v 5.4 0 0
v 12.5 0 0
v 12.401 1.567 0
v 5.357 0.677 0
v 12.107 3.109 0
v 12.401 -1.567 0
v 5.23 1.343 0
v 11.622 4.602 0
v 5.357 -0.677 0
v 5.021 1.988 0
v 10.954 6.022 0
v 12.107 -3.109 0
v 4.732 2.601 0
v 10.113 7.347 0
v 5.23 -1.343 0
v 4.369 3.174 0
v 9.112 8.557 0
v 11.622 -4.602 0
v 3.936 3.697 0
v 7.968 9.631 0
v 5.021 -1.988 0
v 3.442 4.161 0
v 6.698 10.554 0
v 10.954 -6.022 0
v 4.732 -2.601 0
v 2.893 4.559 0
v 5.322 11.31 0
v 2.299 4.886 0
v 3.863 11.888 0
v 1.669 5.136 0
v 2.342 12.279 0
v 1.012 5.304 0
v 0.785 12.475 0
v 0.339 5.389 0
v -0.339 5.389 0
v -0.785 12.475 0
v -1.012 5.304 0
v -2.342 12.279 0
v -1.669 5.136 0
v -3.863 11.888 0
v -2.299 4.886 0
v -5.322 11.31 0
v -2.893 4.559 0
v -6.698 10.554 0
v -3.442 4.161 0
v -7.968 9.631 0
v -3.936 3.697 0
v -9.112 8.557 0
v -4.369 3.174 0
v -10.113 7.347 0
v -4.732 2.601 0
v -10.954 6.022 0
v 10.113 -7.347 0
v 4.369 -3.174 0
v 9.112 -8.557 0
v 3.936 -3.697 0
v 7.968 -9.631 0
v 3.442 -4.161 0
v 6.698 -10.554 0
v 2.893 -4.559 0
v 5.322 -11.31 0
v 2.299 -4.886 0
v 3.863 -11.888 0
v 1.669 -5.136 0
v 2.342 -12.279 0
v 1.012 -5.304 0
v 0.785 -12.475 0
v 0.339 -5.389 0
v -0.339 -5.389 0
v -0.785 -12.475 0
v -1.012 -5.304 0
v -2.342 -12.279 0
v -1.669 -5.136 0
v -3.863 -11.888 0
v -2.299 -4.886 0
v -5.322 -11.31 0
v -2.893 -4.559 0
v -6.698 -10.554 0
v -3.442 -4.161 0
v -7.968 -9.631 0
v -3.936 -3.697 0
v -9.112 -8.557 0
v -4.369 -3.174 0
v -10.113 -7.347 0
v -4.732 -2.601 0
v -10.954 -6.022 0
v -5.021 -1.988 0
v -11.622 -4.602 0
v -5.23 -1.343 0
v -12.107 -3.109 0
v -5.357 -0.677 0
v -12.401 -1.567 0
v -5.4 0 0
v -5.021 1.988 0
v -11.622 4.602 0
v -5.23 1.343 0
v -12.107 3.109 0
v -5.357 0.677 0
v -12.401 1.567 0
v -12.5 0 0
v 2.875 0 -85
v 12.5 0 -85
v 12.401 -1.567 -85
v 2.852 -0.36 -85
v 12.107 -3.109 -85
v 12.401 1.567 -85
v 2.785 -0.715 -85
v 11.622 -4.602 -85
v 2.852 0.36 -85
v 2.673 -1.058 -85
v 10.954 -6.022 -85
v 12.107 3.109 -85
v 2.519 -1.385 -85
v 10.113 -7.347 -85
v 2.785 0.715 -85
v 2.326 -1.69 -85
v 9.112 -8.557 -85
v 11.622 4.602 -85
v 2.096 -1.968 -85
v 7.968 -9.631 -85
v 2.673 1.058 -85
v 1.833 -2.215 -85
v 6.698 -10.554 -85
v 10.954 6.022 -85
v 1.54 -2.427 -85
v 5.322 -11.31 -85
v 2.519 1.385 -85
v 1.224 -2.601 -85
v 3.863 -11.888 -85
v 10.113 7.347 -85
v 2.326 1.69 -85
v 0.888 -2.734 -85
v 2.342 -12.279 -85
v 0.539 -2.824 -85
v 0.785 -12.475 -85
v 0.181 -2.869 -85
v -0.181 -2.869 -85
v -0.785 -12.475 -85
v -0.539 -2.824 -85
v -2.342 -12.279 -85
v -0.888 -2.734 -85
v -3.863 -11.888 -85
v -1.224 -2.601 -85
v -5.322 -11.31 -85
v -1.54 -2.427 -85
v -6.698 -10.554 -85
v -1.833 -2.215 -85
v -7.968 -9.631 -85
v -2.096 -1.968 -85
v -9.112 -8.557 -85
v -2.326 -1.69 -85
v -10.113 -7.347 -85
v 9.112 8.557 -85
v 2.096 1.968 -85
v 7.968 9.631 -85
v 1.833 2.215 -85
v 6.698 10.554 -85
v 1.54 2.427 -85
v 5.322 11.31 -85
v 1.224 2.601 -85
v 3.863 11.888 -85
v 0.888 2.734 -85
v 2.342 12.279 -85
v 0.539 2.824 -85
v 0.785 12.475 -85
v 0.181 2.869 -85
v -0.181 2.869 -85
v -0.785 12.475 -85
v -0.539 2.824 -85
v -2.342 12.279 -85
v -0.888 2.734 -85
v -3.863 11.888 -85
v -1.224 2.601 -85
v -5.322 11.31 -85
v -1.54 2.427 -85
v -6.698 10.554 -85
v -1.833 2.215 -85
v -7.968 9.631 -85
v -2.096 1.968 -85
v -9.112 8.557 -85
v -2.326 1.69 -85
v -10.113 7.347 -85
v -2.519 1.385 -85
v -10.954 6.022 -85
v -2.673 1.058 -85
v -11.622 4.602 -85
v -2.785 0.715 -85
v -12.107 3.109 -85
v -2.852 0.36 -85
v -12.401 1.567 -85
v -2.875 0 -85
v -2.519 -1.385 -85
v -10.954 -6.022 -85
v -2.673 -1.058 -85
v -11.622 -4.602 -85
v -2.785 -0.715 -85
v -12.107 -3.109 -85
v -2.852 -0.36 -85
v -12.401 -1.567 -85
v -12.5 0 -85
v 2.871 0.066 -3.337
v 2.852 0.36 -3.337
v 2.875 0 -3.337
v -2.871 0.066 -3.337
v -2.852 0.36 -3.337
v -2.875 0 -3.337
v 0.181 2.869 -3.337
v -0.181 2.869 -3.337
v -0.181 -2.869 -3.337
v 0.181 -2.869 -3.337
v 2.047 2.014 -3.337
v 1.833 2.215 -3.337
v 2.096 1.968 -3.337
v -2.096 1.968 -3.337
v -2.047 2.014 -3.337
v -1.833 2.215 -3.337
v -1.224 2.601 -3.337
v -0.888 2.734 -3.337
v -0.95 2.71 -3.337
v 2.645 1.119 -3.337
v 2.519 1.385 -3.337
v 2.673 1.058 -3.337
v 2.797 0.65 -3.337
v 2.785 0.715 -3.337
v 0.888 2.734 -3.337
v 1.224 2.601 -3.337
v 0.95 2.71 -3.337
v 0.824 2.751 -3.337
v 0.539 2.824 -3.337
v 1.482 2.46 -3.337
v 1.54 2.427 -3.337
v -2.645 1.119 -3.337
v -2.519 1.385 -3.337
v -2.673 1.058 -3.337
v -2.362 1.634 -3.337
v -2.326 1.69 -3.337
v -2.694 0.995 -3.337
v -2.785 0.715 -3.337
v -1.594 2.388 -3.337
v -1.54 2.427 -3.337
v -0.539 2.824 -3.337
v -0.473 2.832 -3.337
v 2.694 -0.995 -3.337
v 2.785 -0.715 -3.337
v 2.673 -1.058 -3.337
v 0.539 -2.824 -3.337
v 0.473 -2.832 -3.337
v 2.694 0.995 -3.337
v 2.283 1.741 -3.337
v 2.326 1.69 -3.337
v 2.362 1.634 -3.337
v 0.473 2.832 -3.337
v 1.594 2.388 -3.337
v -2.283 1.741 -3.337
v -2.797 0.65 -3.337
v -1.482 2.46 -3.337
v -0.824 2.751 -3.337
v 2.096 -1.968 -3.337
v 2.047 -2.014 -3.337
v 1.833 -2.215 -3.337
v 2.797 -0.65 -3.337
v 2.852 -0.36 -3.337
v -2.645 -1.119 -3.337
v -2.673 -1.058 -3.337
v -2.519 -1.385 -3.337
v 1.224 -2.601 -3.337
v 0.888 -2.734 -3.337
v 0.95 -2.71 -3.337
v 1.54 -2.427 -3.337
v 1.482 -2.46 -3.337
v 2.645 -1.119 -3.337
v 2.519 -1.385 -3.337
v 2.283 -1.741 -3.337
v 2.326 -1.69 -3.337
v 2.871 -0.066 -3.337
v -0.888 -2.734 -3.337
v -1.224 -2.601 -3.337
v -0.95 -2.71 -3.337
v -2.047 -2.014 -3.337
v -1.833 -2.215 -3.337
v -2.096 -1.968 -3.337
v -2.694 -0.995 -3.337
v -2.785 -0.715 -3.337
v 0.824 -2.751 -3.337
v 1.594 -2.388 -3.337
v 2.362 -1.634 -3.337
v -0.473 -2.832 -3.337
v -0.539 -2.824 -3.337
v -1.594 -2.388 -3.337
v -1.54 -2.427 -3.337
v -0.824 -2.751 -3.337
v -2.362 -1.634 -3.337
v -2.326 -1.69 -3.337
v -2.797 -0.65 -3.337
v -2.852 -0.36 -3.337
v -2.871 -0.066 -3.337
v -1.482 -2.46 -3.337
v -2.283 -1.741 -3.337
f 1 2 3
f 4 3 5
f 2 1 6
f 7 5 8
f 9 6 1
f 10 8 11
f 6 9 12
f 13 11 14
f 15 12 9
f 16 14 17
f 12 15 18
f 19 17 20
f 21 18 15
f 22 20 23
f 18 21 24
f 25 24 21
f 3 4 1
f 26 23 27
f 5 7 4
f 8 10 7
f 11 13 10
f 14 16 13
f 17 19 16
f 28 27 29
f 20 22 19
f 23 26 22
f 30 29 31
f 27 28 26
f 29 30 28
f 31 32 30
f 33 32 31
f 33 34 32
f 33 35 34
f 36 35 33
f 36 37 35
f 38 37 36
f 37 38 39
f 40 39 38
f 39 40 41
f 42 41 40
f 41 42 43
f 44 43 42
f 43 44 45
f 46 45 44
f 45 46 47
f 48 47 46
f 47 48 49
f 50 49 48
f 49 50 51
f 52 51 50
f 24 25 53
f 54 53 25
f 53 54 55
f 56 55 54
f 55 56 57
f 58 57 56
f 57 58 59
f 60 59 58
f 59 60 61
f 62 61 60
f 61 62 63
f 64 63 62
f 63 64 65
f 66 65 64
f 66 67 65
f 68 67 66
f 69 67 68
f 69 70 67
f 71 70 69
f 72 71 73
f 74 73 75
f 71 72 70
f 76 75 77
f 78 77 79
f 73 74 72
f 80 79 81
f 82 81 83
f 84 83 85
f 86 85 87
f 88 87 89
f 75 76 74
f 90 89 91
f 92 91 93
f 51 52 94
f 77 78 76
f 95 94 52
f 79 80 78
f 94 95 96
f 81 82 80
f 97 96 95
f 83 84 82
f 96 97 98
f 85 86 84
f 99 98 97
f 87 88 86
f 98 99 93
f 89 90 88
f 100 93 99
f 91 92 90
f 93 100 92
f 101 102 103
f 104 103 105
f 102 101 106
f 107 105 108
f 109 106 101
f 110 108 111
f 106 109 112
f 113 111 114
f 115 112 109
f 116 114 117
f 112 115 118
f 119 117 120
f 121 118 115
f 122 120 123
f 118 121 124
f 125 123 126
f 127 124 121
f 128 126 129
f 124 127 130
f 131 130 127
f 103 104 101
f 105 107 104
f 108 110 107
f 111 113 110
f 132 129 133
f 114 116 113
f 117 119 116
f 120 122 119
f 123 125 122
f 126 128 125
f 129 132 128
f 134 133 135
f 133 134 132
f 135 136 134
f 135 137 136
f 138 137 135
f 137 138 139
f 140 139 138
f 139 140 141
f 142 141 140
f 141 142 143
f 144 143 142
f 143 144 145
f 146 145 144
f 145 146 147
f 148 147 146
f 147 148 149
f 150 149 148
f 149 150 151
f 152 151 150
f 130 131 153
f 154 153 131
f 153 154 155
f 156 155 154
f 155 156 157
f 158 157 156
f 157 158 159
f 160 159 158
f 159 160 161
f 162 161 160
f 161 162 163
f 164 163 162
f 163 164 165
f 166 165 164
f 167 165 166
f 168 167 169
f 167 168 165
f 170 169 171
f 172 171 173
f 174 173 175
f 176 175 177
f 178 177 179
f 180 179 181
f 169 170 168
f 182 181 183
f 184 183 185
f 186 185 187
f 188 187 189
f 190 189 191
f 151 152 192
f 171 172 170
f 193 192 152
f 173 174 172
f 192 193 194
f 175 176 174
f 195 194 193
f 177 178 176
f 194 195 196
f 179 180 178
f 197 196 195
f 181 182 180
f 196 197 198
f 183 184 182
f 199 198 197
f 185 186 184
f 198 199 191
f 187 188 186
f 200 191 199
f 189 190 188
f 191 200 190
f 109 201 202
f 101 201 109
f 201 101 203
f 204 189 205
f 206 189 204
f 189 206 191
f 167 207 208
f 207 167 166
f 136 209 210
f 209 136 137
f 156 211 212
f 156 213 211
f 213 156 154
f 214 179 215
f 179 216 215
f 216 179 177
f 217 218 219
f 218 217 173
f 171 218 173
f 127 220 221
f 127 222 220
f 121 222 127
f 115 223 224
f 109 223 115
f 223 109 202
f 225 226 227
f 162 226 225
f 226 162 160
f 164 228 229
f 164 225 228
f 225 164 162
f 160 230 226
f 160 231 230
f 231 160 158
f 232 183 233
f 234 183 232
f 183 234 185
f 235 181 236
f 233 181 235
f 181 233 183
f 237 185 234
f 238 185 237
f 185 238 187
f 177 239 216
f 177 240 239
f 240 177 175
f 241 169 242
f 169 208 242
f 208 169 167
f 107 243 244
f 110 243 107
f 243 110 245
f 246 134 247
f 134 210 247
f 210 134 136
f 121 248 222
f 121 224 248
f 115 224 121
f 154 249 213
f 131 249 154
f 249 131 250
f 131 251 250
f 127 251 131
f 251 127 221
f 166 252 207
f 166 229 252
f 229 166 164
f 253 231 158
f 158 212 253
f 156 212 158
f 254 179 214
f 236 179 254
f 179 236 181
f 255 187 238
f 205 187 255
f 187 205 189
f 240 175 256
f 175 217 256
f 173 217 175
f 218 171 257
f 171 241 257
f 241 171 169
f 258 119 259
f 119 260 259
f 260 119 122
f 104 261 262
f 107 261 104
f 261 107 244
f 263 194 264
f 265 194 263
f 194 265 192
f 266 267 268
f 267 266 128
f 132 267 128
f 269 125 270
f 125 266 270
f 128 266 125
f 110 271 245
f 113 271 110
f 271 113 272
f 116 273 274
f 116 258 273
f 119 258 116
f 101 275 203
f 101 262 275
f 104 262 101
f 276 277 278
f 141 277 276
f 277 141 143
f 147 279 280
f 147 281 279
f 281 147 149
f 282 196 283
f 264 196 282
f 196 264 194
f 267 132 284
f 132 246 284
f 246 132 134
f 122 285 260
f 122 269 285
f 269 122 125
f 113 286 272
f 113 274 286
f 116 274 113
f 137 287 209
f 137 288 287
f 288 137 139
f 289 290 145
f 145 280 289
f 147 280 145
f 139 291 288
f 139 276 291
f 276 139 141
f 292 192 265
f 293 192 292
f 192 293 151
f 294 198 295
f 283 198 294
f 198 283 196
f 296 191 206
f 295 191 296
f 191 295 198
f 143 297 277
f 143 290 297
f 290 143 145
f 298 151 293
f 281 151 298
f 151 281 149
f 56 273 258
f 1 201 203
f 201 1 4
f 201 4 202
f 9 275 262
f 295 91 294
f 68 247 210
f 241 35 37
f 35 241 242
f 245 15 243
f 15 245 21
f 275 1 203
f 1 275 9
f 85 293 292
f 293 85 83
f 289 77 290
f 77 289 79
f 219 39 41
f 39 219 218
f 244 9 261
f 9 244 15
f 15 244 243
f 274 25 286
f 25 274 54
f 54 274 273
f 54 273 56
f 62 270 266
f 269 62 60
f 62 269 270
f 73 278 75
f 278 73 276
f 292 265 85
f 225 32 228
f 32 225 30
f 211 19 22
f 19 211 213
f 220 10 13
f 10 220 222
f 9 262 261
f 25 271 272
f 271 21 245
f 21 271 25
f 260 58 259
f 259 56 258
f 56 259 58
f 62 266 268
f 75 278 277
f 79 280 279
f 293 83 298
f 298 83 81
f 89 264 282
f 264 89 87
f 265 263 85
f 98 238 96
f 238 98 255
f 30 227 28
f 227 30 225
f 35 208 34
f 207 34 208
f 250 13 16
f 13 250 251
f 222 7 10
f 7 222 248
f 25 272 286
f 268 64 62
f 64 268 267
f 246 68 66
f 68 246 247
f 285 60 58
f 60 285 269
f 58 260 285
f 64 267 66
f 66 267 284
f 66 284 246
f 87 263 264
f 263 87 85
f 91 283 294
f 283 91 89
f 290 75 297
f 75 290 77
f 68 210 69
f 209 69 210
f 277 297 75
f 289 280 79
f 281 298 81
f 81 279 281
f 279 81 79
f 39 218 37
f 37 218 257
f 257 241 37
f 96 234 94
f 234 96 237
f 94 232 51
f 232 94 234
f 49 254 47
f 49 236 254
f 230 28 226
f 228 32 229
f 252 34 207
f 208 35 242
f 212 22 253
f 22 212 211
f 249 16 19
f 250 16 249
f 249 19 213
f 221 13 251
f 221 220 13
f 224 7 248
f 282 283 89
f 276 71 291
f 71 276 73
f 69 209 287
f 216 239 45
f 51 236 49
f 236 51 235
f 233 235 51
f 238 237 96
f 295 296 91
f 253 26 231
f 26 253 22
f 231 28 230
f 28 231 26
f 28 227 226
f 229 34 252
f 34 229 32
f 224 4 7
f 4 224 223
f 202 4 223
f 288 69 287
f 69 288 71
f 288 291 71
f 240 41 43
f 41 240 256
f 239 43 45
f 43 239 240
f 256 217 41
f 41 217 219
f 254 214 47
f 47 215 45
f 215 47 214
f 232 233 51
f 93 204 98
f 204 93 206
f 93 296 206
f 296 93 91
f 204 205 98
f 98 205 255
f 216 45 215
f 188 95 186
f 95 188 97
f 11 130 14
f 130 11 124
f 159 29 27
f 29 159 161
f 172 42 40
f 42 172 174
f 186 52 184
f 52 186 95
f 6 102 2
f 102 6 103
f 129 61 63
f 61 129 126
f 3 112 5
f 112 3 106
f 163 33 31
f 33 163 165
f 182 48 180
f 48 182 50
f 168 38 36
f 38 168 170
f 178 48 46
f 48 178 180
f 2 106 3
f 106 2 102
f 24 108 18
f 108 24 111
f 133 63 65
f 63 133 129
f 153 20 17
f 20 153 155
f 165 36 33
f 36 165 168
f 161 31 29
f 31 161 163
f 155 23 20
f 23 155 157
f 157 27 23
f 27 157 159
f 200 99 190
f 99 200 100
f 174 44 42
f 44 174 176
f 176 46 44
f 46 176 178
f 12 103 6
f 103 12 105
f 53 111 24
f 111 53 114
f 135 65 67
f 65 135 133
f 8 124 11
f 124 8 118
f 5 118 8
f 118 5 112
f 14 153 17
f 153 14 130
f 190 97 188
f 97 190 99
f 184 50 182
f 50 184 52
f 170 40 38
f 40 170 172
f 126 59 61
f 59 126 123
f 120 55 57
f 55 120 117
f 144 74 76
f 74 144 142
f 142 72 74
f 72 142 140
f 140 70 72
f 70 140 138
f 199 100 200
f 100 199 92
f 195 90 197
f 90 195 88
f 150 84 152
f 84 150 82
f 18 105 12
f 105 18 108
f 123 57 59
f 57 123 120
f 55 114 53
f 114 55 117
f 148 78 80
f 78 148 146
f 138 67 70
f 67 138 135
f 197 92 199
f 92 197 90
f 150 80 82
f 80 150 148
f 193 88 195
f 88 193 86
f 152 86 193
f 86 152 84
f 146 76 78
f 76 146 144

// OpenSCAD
$fn = 50;


difference() {
	union() {
		translate(v = [0, 0, -85.0000000000]) {
			cylinder(h = 85, r = 12.5000000000);
		}
	}
	union() {
		translate(v = [0, 0, 0]) {
			rotate(a = [0, 0, 0]) {
				difference() {
					union() {
						translate(v = [0, 0, -85.0000000000]) {
							cylinder(h = 85, r = 2.6000000000);
						}
						translate(v = [0, 0, -85.0000000000]) {
							cylinder(h = 85, r = 2.8750000000);
						}
						translate(v = [0, 0, -3.7000000000]) {
							cylinder(h = 3.7000000000, r = 12.5000000000, r1 = 2.6000000000, r2 = 5.4000000000);
						}
						translate(v = [0, 0, -85.0000000000]) {
							cylinder(h = 85, r = 2.6000000000);
						}
					}
					union();
				}
			}
		}
	}
}
